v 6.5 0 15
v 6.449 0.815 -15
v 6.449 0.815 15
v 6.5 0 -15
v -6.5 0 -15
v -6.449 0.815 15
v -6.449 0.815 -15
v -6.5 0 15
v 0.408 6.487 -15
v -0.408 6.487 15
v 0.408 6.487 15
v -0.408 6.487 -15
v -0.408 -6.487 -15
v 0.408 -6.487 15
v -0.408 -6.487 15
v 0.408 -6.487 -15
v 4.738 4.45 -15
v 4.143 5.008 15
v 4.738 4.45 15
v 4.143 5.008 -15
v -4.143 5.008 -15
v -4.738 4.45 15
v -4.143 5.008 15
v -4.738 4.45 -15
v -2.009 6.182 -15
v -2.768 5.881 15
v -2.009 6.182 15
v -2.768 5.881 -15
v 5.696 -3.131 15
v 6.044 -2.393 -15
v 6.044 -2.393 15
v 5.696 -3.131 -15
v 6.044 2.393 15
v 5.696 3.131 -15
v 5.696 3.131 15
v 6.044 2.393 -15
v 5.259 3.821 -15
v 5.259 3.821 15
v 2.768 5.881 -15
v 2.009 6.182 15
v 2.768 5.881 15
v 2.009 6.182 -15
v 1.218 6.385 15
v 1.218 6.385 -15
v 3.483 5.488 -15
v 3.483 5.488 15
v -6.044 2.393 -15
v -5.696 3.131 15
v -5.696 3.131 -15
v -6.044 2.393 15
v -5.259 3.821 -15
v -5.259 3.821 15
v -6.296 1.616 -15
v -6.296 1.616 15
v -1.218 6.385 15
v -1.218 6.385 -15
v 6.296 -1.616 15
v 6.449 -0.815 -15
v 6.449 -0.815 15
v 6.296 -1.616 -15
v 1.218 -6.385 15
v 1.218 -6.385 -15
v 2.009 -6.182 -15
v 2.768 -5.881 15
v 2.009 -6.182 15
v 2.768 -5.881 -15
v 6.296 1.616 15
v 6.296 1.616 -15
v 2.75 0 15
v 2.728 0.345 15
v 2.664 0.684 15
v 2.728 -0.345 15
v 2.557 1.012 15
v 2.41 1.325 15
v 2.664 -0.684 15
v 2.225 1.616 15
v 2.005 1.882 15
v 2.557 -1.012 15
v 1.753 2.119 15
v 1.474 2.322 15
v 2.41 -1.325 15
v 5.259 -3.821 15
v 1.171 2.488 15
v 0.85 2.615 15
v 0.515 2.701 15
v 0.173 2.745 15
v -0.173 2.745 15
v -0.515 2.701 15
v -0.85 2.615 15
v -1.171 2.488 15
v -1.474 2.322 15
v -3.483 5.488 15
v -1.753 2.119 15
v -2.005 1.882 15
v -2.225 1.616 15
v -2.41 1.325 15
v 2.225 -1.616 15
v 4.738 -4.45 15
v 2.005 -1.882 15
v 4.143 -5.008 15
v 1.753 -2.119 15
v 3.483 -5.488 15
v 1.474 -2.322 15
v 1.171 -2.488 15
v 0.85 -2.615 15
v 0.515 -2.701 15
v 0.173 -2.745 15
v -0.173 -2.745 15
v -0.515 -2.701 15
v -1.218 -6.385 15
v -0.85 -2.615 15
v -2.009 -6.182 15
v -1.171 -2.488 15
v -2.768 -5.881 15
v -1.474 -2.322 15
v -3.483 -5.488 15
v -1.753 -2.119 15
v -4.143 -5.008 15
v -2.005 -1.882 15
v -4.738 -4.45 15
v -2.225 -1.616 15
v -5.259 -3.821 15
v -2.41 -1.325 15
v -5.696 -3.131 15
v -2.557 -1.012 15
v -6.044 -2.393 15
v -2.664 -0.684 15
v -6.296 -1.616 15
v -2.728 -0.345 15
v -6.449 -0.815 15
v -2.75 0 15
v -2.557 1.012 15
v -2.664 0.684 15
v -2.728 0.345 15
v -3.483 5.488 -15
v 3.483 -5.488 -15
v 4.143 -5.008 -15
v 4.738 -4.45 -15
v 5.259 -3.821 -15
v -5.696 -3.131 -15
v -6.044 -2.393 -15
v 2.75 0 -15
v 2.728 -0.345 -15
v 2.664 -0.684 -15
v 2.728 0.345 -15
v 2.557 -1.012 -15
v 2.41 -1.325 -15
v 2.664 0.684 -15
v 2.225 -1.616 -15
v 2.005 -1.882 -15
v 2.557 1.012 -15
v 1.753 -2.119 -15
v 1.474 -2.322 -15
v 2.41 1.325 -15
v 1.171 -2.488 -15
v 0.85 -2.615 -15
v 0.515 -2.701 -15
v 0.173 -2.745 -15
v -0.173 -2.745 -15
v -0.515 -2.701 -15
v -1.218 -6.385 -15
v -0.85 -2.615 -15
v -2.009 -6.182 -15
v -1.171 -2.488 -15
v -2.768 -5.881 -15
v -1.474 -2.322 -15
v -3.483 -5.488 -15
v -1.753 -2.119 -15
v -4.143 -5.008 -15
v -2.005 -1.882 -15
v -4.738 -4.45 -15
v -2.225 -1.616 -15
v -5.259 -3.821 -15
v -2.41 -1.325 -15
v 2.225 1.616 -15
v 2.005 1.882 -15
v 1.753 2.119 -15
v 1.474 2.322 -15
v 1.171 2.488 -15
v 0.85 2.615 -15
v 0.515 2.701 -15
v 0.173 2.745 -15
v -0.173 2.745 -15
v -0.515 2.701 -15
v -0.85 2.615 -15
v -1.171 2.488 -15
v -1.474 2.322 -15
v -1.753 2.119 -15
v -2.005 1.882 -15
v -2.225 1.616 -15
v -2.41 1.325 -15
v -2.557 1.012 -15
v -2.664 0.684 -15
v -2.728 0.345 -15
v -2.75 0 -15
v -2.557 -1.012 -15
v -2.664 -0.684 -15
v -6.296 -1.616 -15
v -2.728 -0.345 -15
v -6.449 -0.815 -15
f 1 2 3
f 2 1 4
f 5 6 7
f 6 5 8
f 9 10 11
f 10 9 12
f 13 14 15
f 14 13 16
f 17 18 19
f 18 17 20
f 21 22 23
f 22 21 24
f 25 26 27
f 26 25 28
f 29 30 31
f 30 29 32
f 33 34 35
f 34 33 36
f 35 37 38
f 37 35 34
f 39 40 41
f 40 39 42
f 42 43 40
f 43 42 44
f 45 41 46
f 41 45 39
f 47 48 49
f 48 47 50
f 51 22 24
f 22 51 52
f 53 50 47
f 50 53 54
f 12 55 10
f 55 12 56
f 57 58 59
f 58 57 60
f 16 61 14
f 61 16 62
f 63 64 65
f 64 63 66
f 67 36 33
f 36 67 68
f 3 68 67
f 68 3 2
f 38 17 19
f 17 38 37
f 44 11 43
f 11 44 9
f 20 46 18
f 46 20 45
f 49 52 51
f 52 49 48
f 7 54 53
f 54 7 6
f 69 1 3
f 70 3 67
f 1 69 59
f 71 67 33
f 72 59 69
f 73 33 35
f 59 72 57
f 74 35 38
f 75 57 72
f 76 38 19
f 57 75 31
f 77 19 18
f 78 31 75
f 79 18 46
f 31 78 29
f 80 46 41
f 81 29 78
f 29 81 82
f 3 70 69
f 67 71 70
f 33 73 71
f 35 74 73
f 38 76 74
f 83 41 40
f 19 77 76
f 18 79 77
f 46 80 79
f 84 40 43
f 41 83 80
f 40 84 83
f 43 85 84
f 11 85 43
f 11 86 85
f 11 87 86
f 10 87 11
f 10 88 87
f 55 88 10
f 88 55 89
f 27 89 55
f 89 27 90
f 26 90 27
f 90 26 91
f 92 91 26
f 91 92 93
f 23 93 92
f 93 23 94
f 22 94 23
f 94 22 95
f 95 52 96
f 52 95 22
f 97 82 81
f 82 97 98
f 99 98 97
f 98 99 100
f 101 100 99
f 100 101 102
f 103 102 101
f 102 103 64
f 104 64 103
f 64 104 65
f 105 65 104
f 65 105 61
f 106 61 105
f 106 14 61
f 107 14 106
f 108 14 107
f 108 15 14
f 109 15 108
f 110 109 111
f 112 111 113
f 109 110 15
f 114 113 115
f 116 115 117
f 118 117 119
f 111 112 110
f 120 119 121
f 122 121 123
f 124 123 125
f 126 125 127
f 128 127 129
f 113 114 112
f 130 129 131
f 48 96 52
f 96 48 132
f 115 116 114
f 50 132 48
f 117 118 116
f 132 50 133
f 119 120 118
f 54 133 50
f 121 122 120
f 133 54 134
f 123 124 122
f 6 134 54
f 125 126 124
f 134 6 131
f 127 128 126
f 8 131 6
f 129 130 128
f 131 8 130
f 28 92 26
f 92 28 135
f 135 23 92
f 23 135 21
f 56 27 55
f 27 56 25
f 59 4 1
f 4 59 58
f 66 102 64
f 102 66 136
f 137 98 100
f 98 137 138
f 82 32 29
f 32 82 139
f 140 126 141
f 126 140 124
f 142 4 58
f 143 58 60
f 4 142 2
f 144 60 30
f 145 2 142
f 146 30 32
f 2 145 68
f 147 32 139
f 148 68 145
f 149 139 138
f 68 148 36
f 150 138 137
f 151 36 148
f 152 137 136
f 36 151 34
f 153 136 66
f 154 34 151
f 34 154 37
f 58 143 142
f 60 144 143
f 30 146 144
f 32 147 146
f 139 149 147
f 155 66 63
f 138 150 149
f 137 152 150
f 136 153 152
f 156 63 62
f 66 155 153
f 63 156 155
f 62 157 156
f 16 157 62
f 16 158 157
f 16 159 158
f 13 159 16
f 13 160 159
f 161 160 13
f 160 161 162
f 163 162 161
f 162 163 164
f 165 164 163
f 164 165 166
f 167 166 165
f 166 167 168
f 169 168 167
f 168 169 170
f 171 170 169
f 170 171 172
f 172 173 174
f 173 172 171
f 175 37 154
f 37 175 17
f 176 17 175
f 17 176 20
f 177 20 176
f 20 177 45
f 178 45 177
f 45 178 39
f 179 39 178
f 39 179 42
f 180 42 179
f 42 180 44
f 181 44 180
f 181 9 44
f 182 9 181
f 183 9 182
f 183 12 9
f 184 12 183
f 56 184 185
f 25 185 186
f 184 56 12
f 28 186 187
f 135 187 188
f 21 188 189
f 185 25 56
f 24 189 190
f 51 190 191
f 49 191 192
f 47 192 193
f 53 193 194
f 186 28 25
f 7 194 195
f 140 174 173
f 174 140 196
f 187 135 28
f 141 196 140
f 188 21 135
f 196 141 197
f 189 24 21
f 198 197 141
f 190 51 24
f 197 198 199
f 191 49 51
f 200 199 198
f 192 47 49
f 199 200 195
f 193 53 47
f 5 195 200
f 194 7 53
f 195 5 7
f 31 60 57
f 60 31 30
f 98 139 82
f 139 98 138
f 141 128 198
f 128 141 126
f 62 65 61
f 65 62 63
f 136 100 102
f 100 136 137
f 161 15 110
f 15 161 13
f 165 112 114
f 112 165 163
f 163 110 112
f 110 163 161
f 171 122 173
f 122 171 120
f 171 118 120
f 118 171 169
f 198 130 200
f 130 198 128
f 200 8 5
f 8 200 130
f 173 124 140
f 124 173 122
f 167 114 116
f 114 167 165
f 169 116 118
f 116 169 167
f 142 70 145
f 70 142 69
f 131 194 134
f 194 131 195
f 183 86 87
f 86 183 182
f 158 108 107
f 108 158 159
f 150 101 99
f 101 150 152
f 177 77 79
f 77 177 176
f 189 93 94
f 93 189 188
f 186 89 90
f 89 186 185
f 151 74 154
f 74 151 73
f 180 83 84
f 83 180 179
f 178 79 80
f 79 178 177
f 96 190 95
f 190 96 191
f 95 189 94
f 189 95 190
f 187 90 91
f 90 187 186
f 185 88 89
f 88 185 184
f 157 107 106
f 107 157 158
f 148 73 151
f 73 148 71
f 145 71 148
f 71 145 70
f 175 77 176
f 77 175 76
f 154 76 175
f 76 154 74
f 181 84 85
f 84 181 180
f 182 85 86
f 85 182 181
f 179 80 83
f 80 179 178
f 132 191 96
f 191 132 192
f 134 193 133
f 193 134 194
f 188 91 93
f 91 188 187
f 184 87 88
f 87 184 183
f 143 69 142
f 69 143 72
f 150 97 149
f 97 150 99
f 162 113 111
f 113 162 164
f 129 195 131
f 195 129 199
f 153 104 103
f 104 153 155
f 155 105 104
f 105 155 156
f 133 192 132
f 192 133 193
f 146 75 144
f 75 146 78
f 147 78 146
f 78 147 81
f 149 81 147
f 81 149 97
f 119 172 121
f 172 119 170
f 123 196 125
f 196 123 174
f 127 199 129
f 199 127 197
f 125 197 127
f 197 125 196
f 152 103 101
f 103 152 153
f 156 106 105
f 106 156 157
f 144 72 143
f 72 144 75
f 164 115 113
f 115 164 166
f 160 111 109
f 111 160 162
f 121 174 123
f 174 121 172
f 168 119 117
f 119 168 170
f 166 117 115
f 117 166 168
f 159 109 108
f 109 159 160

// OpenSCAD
$fn = 50;


difference() {
	union() {
		translate(v = [0, 0, -15.0000000000]) {
			cylinder(h = 30, r = 6.5000000000);
		}
	}
	union() {
		translate(v = [0, 0, -100.0000000000]) {
			cylinder(h = 200, r = 2.7500000000);
		}
	}
}
